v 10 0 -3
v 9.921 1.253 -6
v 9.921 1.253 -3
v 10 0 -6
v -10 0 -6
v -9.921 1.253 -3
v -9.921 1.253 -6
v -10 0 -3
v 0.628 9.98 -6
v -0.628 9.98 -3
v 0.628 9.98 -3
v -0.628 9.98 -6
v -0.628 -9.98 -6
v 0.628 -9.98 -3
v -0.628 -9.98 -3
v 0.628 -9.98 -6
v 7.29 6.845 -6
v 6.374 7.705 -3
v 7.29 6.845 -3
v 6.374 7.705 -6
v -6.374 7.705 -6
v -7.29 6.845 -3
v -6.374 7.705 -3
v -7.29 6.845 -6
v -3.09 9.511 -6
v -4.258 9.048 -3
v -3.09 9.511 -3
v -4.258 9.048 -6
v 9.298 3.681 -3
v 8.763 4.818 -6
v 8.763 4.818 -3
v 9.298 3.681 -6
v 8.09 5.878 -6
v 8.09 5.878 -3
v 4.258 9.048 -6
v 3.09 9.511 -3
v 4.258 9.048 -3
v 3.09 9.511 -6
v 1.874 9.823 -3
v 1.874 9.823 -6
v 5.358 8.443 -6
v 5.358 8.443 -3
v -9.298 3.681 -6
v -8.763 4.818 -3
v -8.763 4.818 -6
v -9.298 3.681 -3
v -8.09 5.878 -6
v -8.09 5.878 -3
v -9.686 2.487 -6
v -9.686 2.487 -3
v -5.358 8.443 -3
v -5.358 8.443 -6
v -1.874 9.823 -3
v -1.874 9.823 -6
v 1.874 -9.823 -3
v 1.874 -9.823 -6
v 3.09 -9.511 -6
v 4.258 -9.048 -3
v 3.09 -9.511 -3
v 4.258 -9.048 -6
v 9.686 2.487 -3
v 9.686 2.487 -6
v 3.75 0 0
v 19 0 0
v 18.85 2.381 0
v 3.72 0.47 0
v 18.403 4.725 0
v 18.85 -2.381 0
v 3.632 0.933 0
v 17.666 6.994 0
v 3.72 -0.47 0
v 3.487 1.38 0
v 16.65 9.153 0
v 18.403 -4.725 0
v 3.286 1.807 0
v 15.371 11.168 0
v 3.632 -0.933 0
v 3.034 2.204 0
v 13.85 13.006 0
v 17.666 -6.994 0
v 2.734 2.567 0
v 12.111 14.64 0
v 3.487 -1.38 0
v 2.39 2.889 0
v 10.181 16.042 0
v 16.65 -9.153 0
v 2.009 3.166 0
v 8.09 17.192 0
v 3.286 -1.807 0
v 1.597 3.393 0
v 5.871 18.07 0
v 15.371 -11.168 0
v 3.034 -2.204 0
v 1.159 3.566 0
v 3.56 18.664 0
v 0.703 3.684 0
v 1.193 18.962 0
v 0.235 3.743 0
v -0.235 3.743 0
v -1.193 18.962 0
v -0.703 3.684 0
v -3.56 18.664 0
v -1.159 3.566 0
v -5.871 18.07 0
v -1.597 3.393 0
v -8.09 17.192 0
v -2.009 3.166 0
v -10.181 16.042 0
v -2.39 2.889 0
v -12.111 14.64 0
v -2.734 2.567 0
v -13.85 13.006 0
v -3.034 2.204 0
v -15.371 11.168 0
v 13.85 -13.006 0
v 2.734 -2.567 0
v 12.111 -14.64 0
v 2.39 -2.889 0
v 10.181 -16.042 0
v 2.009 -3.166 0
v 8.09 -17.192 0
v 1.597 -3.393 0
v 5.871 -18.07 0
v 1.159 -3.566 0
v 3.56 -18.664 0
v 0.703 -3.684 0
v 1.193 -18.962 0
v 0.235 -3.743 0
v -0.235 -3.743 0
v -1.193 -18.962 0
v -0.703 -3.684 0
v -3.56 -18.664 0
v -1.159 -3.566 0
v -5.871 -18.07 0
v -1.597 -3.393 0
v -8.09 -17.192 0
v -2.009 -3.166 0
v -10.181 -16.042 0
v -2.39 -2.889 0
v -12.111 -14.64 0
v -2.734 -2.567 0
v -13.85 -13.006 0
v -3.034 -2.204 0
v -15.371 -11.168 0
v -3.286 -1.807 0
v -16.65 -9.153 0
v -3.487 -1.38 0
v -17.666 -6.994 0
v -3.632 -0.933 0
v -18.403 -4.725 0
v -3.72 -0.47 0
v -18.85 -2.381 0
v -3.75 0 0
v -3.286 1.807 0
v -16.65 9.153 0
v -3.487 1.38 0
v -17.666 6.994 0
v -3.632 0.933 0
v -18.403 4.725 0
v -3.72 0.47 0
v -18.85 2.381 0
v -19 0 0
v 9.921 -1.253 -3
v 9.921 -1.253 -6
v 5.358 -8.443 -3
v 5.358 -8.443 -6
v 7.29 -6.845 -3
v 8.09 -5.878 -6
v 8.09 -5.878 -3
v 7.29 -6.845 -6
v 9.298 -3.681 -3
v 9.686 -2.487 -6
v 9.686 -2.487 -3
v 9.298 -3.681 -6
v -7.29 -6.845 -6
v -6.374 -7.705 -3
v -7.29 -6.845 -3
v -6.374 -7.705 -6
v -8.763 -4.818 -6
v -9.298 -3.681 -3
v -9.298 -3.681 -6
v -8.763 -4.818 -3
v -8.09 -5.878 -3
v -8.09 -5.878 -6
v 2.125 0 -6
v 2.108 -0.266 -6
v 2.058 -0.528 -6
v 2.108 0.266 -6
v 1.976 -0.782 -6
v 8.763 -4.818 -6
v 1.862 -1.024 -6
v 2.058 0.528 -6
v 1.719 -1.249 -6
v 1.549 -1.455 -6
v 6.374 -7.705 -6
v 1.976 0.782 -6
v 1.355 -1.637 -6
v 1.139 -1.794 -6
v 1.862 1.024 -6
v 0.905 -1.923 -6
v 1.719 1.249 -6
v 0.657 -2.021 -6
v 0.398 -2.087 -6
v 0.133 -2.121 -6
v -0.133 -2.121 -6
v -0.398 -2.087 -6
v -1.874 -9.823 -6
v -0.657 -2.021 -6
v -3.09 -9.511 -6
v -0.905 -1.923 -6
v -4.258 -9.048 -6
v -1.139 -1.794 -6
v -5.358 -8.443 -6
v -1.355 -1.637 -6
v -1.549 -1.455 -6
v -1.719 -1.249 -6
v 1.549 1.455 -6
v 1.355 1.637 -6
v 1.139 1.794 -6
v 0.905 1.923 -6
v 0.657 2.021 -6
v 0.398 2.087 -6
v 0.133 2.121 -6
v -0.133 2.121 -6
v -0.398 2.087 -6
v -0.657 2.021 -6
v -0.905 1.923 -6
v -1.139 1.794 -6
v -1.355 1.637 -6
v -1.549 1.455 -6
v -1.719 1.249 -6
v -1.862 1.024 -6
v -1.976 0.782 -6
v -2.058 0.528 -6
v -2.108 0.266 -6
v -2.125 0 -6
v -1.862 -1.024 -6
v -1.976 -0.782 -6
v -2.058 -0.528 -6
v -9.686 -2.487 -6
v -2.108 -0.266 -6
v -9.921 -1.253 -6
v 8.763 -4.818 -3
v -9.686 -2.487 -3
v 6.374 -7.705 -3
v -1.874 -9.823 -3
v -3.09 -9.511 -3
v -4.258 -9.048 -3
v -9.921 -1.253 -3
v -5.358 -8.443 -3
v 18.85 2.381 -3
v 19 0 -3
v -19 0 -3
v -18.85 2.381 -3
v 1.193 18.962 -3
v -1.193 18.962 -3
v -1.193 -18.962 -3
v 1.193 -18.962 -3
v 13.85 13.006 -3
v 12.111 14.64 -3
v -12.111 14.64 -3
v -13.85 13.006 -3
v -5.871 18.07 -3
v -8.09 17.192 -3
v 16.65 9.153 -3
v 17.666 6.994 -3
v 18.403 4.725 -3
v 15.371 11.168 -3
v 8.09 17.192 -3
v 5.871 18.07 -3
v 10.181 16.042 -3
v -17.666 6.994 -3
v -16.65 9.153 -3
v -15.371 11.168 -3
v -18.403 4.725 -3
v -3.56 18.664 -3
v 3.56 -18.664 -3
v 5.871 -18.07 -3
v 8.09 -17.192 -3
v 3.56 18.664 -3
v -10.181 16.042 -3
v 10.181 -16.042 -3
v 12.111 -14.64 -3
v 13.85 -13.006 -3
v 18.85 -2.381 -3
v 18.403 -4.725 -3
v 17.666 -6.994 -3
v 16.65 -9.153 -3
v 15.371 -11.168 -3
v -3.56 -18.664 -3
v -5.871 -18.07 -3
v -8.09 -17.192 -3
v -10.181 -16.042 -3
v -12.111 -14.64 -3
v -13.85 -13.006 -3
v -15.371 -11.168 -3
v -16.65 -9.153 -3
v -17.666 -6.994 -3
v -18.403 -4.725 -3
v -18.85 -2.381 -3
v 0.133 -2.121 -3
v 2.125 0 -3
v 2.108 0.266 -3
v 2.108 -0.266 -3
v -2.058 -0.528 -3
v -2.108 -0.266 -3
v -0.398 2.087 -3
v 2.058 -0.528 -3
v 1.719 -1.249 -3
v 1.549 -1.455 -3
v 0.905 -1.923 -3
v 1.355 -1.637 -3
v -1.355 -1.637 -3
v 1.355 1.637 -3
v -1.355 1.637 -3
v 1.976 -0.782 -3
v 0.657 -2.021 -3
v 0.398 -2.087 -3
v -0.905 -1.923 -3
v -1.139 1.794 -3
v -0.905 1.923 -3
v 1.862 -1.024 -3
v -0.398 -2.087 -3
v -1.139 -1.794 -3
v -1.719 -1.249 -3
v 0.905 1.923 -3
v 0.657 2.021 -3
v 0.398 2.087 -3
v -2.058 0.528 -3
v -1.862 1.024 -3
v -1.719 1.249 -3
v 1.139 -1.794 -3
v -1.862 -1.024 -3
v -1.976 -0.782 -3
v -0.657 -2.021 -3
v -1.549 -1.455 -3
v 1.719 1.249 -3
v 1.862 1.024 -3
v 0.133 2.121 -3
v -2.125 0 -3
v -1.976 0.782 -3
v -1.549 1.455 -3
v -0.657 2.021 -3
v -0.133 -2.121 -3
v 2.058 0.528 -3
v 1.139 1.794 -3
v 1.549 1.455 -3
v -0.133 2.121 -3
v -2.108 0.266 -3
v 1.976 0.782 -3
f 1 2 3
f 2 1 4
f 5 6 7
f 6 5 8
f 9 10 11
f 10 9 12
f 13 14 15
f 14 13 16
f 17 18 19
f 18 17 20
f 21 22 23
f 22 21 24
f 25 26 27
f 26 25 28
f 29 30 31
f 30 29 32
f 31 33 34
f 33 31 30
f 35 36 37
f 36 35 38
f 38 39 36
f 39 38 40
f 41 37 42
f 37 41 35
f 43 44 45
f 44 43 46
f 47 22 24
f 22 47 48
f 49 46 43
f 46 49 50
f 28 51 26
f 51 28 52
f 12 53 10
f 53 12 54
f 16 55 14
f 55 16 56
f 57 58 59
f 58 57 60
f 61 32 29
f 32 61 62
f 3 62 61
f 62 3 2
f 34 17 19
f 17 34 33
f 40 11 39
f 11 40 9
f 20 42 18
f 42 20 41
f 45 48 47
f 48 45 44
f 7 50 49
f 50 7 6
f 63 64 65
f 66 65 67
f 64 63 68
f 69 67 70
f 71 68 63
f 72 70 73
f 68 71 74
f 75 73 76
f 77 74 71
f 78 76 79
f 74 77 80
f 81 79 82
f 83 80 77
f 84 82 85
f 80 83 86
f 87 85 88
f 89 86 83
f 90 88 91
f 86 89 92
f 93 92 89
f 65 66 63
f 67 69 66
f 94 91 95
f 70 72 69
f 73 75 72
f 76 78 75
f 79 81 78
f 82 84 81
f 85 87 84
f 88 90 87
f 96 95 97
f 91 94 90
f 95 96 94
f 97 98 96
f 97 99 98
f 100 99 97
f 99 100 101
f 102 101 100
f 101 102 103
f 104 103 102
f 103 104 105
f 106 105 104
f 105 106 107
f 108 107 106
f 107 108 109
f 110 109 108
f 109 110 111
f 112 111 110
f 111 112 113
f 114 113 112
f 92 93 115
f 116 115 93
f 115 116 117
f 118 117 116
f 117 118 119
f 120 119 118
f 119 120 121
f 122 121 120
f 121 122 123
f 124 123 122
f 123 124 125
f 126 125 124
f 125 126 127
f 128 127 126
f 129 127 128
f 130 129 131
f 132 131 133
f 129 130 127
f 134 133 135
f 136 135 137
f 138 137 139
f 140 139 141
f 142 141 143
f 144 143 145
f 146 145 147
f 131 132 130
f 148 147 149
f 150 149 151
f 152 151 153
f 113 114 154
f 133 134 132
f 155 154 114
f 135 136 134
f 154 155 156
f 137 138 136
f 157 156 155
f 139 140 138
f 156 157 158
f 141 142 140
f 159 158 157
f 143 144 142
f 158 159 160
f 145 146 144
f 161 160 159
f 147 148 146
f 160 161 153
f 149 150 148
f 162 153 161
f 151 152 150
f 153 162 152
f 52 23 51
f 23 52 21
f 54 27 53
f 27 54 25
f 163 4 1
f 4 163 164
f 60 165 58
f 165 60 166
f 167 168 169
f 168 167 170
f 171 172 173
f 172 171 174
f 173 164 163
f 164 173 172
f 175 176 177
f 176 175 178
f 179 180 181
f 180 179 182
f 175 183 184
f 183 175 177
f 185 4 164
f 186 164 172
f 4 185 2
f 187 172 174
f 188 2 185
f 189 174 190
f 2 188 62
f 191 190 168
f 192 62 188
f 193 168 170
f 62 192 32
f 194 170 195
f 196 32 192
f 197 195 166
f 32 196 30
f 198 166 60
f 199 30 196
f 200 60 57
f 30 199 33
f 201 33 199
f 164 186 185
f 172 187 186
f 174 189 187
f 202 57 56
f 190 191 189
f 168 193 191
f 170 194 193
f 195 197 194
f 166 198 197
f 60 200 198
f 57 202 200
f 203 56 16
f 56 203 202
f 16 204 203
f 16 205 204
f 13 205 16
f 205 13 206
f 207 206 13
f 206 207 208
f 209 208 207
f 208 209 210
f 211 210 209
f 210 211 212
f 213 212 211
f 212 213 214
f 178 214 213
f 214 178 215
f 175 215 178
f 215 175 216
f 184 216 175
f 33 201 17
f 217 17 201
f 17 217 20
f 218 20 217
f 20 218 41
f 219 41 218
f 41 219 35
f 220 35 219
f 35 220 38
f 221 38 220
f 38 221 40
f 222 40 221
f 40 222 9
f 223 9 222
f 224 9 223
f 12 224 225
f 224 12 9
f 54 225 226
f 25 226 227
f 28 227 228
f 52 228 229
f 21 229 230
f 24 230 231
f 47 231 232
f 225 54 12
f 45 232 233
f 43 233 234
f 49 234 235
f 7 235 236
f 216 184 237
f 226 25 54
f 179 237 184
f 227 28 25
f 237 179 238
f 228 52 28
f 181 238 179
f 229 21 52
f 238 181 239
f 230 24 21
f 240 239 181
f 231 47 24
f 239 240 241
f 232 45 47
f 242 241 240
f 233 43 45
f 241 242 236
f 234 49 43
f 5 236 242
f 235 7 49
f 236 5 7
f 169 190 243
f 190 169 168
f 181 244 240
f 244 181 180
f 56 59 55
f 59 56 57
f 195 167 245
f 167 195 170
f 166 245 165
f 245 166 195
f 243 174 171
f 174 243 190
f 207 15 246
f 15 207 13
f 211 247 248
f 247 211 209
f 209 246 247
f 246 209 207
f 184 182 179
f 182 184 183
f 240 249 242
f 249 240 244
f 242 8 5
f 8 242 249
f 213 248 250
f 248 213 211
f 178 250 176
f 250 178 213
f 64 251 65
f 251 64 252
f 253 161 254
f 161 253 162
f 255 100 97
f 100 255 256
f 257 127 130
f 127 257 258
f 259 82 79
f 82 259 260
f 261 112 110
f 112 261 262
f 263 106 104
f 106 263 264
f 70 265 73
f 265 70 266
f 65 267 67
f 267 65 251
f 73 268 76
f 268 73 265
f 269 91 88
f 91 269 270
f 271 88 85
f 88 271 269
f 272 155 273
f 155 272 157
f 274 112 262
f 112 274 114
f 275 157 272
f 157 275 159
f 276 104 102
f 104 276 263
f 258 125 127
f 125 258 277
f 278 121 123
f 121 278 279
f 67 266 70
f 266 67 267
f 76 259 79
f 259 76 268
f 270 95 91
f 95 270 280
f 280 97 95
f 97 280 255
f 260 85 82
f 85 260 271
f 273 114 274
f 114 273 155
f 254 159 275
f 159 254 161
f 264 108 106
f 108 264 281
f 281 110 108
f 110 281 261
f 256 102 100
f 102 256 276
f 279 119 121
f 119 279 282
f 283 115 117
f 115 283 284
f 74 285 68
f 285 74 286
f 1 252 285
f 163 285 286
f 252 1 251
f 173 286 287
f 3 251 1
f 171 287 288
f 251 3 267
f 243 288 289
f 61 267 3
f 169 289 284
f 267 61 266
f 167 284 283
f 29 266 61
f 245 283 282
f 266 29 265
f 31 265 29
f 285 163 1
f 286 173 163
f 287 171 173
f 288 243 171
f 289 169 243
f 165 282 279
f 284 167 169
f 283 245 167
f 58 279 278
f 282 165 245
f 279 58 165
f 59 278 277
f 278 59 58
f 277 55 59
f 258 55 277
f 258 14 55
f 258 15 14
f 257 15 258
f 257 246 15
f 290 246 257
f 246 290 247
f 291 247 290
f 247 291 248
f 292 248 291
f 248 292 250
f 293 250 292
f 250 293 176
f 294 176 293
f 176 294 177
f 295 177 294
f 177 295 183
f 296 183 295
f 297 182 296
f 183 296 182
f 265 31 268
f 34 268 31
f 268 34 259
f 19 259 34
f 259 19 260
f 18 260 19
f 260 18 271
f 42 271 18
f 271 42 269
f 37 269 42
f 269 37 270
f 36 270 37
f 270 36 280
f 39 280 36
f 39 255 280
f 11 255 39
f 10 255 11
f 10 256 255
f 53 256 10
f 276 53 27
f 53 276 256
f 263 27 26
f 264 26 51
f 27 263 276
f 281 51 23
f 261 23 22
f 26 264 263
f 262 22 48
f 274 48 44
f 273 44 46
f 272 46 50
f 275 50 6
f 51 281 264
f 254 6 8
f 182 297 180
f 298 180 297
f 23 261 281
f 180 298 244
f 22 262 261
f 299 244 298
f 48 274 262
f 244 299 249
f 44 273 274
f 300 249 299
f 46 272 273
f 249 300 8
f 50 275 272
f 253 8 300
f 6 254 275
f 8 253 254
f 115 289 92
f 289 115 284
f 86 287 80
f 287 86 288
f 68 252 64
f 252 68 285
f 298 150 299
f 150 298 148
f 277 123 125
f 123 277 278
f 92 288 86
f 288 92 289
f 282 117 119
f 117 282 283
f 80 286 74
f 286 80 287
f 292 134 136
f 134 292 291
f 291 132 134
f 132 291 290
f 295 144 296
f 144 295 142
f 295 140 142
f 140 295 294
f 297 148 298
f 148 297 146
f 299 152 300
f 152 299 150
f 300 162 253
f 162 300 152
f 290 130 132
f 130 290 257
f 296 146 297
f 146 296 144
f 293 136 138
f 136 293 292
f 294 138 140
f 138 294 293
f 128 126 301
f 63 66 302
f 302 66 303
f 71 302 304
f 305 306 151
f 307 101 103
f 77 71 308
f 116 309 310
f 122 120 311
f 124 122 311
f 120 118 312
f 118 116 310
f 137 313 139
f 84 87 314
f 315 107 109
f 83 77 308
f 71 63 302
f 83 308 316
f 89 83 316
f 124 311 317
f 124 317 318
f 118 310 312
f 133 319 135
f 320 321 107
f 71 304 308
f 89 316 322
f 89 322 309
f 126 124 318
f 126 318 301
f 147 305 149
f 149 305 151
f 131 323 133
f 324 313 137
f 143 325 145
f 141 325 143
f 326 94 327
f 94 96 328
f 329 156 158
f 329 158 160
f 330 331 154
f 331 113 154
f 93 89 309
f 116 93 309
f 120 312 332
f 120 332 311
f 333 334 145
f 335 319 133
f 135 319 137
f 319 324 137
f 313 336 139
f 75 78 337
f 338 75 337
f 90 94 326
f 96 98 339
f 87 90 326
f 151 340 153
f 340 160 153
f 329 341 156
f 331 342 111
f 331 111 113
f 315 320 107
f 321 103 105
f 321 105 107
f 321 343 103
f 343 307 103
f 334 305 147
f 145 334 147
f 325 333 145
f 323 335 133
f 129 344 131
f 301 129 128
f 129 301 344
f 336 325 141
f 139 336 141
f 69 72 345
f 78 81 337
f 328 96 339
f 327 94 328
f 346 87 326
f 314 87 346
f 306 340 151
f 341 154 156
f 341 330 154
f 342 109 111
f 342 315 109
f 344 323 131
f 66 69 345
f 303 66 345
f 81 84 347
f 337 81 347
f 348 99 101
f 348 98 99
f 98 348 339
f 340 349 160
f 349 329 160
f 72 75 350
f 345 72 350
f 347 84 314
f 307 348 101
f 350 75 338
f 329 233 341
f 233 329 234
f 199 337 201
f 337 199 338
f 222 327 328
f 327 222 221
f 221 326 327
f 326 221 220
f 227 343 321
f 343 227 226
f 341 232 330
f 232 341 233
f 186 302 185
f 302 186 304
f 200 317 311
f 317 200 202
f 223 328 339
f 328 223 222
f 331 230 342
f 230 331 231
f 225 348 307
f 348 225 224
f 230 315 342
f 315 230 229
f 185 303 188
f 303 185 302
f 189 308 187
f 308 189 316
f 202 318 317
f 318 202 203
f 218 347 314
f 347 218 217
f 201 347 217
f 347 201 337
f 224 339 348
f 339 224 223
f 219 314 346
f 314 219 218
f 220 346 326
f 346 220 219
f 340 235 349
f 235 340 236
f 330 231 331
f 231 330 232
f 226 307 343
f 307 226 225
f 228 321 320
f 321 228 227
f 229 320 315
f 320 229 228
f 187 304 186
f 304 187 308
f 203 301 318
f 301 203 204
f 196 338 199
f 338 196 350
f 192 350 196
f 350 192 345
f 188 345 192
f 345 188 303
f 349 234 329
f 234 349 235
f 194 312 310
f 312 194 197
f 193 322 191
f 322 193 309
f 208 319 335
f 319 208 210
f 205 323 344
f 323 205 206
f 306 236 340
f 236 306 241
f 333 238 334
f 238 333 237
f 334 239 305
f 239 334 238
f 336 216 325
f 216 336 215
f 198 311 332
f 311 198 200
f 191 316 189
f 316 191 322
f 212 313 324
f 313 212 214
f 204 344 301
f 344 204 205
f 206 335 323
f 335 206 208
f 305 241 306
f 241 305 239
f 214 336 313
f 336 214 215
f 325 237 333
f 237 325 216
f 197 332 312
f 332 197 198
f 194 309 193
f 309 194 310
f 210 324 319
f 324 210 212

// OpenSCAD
$fn = 50;


difference() {
	union() {
		translate(v = [0, 0, -6.0000000000]) {
			cylinder(h = 6, r = 10.0000000000);
		}
		translate(v = [0, 0, -3.0000000000]) {
			cylinder(h = 3, r = 19.0000000000);
		}
	}
	union() {
		translate(v = [0, 0, 0]) {
			rotate(a = [0, 0, 0]) {
				difference() {
					union() {
						#translate(v = [0, 0, -6.0000000000]) {
							cylinder(h = 6, r = 2.0000000000);
						}
						#translate(v = [0, 0, -3]) {
							cylinder(h = 3, r1 = 2.1250000000, r2 = 3.7500000000);
						}
						#translate(v = [0, 0, -6.0000000000]) {
							cylinder(h = 6, r = 2.1250000000);
						}
						#translate(v = [0, 0, -6.0000000000]) {
							cylinder(h = 6, r = 2.0000000000);
						}
					}
					union();
				}
			}
		}
	}
}
